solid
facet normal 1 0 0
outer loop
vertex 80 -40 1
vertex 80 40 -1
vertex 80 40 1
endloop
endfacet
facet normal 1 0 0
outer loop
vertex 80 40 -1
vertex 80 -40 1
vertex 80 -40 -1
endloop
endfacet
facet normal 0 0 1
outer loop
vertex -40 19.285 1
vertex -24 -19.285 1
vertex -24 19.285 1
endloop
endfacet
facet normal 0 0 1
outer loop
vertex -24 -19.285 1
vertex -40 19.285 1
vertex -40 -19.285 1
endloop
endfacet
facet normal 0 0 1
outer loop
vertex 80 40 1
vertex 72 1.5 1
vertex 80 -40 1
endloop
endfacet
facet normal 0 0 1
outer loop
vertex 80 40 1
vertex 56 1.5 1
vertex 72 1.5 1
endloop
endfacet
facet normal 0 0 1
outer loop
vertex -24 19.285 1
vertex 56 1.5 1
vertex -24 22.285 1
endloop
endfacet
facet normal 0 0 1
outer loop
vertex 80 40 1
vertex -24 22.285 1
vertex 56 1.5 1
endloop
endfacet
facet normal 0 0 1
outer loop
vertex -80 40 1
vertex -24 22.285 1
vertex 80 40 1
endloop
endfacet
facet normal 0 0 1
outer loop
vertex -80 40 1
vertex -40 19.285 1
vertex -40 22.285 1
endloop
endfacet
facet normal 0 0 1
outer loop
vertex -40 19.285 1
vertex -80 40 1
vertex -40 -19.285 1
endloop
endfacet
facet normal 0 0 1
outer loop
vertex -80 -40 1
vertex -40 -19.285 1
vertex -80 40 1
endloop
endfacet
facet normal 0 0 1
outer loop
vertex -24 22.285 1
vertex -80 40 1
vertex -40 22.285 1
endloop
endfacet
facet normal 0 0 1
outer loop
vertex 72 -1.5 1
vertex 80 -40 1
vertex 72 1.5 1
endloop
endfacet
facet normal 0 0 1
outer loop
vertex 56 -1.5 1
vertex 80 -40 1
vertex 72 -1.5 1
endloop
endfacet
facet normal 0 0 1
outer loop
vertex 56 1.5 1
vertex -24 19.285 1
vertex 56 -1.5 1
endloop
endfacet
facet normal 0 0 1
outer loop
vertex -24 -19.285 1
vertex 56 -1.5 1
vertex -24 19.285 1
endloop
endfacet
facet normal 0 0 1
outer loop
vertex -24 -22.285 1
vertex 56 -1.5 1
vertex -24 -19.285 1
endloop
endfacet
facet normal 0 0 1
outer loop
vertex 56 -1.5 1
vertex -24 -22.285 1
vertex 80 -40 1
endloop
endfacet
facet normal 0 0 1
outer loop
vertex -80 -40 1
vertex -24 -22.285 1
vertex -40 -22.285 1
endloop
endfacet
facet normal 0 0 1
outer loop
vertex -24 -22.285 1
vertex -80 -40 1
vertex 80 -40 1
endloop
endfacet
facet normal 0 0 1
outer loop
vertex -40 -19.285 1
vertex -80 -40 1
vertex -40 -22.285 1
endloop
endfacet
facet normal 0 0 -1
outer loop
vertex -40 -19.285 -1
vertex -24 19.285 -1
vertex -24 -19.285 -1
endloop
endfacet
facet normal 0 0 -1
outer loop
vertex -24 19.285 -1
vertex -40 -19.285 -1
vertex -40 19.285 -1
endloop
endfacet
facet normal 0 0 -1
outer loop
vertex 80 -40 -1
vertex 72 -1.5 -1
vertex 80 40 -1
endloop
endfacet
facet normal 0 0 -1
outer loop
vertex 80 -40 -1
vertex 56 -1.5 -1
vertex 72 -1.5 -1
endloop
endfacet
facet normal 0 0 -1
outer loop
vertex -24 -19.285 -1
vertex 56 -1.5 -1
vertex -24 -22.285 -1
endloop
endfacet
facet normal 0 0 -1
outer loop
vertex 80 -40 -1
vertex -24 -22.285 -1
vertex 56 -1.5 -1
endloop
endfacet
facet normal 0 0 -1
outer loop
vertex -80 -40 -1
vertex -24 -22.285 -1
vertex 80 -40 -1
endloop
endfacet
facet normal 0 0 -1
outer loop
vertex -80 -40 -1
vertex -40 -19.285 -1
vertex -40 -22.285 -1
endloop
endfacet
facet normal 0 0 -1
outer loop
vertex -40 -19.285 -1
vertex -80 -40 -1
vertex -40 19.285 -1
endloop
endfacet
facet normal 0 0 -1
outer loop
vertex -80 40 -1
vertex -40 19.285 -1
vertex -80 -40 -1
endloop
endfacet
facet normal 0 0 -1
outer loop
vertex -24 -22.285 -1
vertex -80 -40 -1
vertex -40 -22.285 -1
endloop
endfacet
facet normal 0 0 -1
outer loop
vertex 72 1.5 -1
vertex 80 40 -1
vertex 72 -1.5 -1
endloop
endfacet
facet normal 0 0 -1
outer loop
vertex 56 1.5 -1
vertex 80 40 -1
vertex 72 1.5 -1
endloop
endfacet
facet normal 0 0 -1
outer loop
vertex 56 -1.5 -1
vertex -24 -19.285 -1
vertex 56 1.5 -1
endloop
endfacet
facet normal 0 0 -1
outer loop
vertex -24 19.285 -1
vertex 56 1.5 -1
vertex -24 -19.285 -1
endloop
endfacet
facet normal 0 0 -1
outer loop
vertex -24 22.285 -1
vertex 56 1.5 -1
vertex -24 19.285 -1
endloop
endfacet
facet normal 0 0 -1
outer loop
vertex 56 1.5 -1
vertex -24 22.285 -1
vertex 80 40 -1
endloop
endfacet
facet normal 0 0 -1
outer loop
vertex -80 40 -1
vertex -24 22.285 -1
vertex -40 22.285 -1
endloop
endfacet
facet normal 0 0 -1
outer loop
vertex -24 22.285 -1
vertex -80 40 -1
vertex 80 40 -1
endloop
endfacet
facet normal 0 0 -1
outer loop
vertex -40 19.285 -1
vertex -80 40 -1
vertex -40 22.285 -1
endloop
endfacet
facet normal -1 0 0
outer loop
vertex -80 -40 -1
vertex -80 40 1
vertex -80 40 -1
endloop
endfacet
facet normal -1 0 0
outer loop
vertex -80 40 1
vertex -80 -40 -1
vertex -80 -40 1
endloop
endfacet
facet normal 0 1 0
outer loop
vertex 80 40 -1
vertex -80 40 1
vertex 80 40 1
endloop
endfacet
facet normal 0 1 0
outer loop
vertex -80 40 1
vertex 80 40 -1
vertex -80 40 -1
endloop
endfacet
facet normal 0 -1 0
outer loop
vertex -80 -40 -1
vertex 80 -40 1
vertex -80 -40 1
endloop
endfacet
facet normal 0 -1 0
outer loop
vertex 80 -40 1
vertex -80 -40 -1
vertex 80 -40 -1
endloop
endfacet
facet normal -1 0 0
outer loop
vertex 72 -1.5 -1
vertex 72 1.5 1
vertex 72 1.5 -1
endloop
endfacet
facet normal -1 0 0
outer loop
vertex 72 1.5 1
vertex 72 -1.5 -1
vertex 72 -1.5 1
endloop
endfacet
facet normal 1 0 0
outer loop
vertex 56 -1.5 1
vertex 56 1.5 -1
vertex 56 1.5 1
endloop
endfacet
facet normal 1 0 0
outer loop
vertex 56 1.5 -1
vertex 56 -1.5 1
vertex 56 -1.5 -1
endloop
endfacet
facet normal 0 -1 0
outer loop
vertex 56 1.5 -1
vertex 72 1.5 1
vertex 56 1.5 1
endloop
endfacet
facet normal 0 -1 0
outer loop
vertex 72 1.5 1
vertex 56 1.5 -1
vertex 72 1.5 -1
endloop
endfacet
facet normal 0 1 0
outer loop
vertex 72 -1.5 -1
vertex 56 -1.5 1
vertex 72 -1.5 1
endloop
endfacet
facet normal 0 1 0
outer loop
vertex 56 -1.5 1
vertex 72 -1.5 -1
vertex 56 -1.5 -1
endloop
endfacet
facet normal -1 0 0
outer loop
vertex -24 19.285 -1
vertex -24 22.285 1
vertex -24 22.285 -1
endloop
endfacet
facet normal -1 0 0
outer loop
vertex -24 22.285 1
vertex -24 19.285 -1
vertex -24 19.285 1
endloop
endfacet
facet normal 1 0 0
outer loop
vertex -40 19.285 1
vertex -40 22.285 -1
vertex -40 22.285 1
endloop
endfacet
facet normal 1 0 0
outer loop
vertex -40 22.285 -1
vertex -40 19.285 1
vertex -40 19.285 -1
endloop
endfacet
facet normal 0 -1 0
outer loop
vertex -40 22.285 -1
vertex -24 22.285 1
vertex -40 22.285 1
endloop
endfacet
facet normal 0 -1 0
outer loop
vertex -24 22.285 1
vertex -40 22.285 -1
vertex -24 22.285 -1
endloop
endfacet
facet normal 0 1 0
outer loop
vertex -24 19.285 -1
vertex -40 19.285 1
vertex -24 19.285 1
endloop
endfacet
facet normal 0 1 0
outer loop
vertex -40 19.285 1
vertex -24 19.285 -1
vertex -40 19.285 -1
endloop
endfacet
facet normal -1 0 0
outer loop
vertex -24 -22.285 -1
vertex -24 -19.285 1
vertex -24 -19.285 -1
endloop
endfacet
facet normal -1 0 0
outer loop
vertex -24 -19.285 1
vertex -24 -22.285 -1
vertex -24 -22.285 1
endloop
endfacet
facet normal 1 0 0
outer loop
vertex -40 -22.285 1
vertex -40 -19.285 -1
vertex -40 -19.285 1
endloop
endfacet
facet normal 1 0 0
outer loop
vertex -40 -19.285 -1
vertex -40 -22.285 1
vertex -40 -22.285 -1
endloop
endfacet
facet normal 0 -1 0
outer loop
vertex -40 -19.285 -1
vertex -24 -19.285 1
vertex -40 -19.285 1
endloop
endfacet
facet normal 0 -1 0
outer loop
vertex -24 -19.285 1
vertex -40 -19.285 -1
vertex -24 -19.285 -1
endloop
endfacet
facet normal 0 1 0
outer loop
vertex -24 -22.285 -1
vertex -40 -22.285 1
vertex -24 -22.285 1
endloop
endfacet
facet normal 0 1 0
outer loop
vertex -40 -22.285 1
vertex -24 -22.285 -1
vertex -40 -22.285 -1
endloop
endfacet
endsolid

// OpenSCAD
// ========================================
// a 16 x 8 x 0.2 cm plate with three 1.6 x 0.3 cm slots
// NeuroCAD canonical IR; dimensions are millimetres
// ========================================
$fn = 48;

difference() {
  cube(size=[160, 80, 2], center=true);
  translate([64, 0, 0]) {
    cube(size=[16, 3, 4], center=true);
  }
  translate([-32, 20.7846096908265, 0]) {
    cube(size=[16, 3, 4], center=true);
  }
  translate([-32, -20.7846096908265, 0]) {
    cube(size=[16, 3, 4], center=true);
  }
}
